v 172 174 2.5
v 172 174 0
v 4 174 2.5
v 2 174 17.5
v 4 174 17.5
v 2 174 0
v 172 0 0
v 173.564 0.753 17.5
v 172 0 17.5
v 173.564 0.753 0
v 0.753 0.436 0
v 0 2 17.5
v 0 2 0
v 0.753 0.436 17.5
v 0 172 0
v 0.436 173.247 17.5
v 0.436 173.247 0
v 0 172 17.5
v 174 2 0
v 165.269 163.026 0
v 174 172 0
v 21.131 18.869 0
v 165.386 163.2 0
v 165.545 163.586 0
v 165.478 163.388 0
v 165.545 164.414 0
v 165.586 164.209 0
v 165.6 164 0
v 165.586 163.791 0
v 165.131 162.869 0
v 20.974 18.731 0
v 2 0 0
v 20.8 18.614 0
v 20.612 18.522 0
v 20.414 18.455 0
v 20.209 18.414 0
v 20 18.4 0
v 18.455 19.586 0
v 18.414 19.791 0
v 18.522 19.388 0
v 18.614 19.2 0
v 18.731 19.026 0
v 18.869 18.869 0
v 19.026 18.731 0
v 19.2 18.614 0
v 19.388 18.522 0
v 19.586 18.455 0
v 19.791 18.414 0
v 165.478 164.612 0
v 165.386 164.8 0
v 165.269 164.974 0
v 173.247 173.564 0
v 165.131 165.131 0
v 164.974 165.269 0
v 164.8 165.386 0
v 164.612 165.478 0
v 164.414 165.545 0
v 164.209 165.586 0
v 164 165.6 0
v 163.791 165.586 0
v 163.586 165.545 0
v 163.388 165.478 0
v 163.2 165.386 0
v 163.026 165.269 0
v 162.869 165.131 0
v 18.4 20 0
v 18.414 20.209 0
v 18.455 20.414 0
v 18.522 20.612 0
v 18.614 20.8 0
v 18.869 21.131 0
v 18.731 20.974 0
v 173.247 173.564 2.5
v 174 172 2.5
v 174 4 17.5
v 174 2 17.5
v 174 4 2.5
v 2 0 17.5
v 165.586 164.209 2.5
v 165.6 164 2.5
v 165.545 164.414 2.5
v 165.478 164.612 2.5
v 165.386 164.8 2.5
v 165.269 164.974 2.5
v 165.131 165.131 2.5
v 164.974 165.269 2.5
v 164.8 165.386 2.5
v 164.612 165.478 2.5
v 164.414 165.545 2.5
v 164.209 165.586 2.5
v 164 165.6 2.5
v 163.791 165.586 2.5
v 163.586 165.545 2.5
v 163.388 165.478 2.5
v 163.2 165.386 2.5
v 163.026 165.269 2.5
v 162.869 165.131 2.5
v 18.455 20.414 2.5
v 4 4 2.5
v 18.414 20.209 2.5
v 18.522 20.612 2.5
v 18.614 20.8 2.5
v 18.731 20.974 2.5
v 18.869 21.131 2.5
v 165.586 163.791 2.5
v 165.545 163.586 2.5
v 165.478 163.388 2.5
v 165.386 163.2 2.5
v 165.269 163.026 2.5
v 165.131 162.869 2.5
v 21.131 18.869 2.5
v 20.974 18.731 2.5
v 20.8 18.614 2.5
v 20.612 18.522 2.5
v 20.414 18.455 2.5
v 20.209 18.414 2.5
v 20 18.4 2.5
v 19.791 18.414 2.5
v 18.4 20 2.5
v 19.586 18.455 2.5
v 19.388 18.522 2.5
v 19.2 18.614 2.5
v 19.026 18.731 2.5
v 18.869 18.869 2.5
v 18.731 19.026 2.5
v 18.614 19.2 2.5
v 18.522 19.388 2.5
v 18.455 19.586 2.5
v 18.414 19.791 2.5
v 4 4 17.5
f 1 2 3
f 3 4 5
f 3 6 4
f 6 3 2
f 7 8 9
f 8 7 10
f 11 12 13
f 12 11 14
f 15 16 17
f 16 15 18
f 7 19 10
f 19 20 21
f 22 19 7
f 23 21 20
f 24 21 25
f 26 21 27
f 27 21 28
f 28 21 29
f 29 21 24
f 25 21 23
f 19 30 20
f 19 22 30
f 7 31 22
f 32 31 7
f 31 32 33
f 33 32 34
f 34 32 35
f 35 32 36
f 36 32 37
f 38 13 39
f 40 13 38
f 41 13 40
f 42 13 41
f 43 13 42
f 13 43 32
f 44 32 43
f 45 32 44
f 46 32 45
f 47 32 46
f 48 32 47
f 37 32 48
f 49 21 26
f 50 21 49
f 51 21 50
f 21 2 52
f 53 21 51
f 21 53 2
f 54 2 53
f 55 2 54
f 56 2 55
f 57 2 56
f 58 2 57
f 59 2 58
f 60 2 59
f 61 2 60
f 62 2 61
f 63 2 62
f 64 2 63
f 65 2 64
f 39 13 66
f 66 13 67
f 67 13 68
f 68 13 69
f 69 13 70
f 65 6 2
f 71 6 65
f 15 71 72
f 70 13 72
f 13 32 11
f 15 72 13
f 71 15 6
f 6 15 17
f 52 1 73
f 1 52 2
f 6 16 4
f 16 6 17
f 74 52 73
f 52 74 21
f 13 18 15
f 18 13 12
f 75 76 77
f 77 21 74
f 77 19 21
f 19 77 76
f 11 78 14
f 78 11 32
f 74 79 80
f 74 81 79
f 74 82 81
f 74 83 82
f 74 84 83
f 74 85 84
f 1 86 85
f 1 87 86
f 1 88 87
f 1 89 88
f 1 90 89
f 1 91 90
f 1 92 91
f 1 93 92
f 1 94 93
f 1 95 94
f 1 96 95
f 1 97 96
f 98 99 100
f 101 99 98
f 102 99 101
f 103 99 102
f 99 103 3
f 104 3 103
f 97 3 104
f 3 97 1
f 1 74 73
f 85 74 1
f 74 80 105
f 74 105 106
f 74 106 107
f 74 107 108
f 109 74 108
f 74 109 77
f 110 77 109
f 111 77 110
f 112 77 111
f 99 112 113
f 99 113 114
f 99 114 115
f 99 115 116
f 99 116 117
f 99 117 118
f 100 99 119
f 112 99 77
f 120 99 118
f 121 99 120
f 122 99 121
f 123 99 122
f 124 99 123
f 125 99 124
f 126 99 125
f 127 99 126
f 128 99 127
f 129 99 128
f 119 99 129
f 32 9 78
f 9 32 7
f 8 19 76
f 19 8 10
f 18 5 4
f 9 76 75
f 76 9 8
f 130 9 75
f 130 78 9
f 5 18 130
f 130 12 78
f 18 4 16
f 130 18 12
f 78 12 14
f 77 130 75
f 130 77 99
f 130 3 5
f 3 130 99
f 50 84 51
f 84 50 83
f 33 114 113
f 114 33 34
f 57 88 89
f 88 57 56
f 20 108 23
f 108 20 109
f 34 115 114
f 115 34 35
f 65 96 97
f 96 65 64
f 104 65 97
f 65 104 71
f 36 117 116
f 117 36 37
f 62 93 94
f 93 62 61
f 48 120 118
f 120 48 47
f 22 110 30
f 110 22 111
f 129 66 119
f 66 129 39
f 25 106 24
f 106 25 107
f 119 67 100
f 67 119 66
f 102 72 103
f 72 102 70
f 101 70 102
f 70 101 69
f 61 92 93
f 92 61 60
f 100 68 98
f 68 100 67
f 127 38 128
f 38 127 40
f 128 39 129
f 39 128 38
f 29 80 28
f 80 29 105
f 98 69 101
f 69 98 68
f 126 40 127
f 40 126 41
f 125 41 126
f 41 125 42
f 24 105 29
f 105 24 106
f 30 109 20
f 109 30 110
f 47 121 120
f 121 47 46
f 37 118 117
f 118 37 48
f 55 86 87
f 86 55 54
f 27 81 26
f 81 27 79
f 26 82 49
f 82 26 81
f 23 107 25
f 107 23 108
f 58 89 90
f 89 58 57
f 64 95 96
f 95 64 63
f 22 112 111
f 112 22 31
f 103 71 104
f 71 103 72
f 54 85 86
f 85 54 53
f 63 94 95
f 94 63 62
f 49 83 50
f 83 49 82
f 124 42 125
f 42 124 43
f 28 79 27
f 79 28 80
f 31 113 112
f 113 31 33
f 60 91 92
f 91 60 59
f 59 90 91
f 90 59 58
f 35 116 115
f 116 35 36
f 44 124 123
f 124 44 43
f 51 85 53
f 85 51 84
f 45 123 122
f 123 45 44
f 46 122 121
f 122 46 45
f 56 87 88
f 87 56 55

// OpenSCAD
// ================================
// 直径30cm円用 中心出し治具
// 鉛筆用スリット付き
// 隣り合う2辺の立ち上がりを円の縁に当てて使用
// 単位: mm
// ================================

// ---- パラメータ ----
outer_size   = 174;   // 治具全体サイズ（1辺17cm）
thickness    = 2.5;     // 板厚
wall_height  = 15;    // 板の表面からの立ち上がり高さ
wall_thickness = 4;  // 2辺共通の壁厚（内側の当たり面は x=y に対して対称）
slot_width   = 3.2;   // 鉛筆先用スリット幅（2.5〜4.0くらいで調整）
slot_start   = 20;    // スリット開始位置
slot_end     = outer_size - 10; // 端から10mm手前まで（直径30cm円の中心位置154mmを含む）
corner_round = 2;     // 角のR

// ---- 2点を結ぶ細長い穴 ----
module line_slot_2d(p1=[20,20], p2=[210,210], w=3.2) {
    hull() {
        translate(p1) circle(d=w, $fn=48);
        translate(p2) circle(d=w, $fn=48);
    }
}

// ---- 角丸四角形 ----
module rounded_square(size=100, r=3) {
    offset(r=r)
        offset(delta=-r)
            square([size, size]);
}

// ---- 本体 ----
difference() {
    union() {
        // 本体プレート
        linear_extrude(height=thickness)
            rounded_square(outer_size, corner_round);

        // x=0側とy=0側の2辺にL字の壁を追加
        // 板と同じ外形で切り取り、外寸と角丸を維持
        linear_extrude(height=thickness + wall_height)
            intersection() {
                rounded_square(outer_size, corner_round);
                union() {
                    square([outer_size, wall_thickness]);
                    square([wall_thickness, outer_size]);
                }
            }
    }

    // 45度スリット
    translate([0,0,-0.1])
        linear_extrude(height=thickness + 0.2)
            line_slot_2d(
                [slot_start, slot_start],
                [slot_end,   slot_end],
                slot_width
            );
}
